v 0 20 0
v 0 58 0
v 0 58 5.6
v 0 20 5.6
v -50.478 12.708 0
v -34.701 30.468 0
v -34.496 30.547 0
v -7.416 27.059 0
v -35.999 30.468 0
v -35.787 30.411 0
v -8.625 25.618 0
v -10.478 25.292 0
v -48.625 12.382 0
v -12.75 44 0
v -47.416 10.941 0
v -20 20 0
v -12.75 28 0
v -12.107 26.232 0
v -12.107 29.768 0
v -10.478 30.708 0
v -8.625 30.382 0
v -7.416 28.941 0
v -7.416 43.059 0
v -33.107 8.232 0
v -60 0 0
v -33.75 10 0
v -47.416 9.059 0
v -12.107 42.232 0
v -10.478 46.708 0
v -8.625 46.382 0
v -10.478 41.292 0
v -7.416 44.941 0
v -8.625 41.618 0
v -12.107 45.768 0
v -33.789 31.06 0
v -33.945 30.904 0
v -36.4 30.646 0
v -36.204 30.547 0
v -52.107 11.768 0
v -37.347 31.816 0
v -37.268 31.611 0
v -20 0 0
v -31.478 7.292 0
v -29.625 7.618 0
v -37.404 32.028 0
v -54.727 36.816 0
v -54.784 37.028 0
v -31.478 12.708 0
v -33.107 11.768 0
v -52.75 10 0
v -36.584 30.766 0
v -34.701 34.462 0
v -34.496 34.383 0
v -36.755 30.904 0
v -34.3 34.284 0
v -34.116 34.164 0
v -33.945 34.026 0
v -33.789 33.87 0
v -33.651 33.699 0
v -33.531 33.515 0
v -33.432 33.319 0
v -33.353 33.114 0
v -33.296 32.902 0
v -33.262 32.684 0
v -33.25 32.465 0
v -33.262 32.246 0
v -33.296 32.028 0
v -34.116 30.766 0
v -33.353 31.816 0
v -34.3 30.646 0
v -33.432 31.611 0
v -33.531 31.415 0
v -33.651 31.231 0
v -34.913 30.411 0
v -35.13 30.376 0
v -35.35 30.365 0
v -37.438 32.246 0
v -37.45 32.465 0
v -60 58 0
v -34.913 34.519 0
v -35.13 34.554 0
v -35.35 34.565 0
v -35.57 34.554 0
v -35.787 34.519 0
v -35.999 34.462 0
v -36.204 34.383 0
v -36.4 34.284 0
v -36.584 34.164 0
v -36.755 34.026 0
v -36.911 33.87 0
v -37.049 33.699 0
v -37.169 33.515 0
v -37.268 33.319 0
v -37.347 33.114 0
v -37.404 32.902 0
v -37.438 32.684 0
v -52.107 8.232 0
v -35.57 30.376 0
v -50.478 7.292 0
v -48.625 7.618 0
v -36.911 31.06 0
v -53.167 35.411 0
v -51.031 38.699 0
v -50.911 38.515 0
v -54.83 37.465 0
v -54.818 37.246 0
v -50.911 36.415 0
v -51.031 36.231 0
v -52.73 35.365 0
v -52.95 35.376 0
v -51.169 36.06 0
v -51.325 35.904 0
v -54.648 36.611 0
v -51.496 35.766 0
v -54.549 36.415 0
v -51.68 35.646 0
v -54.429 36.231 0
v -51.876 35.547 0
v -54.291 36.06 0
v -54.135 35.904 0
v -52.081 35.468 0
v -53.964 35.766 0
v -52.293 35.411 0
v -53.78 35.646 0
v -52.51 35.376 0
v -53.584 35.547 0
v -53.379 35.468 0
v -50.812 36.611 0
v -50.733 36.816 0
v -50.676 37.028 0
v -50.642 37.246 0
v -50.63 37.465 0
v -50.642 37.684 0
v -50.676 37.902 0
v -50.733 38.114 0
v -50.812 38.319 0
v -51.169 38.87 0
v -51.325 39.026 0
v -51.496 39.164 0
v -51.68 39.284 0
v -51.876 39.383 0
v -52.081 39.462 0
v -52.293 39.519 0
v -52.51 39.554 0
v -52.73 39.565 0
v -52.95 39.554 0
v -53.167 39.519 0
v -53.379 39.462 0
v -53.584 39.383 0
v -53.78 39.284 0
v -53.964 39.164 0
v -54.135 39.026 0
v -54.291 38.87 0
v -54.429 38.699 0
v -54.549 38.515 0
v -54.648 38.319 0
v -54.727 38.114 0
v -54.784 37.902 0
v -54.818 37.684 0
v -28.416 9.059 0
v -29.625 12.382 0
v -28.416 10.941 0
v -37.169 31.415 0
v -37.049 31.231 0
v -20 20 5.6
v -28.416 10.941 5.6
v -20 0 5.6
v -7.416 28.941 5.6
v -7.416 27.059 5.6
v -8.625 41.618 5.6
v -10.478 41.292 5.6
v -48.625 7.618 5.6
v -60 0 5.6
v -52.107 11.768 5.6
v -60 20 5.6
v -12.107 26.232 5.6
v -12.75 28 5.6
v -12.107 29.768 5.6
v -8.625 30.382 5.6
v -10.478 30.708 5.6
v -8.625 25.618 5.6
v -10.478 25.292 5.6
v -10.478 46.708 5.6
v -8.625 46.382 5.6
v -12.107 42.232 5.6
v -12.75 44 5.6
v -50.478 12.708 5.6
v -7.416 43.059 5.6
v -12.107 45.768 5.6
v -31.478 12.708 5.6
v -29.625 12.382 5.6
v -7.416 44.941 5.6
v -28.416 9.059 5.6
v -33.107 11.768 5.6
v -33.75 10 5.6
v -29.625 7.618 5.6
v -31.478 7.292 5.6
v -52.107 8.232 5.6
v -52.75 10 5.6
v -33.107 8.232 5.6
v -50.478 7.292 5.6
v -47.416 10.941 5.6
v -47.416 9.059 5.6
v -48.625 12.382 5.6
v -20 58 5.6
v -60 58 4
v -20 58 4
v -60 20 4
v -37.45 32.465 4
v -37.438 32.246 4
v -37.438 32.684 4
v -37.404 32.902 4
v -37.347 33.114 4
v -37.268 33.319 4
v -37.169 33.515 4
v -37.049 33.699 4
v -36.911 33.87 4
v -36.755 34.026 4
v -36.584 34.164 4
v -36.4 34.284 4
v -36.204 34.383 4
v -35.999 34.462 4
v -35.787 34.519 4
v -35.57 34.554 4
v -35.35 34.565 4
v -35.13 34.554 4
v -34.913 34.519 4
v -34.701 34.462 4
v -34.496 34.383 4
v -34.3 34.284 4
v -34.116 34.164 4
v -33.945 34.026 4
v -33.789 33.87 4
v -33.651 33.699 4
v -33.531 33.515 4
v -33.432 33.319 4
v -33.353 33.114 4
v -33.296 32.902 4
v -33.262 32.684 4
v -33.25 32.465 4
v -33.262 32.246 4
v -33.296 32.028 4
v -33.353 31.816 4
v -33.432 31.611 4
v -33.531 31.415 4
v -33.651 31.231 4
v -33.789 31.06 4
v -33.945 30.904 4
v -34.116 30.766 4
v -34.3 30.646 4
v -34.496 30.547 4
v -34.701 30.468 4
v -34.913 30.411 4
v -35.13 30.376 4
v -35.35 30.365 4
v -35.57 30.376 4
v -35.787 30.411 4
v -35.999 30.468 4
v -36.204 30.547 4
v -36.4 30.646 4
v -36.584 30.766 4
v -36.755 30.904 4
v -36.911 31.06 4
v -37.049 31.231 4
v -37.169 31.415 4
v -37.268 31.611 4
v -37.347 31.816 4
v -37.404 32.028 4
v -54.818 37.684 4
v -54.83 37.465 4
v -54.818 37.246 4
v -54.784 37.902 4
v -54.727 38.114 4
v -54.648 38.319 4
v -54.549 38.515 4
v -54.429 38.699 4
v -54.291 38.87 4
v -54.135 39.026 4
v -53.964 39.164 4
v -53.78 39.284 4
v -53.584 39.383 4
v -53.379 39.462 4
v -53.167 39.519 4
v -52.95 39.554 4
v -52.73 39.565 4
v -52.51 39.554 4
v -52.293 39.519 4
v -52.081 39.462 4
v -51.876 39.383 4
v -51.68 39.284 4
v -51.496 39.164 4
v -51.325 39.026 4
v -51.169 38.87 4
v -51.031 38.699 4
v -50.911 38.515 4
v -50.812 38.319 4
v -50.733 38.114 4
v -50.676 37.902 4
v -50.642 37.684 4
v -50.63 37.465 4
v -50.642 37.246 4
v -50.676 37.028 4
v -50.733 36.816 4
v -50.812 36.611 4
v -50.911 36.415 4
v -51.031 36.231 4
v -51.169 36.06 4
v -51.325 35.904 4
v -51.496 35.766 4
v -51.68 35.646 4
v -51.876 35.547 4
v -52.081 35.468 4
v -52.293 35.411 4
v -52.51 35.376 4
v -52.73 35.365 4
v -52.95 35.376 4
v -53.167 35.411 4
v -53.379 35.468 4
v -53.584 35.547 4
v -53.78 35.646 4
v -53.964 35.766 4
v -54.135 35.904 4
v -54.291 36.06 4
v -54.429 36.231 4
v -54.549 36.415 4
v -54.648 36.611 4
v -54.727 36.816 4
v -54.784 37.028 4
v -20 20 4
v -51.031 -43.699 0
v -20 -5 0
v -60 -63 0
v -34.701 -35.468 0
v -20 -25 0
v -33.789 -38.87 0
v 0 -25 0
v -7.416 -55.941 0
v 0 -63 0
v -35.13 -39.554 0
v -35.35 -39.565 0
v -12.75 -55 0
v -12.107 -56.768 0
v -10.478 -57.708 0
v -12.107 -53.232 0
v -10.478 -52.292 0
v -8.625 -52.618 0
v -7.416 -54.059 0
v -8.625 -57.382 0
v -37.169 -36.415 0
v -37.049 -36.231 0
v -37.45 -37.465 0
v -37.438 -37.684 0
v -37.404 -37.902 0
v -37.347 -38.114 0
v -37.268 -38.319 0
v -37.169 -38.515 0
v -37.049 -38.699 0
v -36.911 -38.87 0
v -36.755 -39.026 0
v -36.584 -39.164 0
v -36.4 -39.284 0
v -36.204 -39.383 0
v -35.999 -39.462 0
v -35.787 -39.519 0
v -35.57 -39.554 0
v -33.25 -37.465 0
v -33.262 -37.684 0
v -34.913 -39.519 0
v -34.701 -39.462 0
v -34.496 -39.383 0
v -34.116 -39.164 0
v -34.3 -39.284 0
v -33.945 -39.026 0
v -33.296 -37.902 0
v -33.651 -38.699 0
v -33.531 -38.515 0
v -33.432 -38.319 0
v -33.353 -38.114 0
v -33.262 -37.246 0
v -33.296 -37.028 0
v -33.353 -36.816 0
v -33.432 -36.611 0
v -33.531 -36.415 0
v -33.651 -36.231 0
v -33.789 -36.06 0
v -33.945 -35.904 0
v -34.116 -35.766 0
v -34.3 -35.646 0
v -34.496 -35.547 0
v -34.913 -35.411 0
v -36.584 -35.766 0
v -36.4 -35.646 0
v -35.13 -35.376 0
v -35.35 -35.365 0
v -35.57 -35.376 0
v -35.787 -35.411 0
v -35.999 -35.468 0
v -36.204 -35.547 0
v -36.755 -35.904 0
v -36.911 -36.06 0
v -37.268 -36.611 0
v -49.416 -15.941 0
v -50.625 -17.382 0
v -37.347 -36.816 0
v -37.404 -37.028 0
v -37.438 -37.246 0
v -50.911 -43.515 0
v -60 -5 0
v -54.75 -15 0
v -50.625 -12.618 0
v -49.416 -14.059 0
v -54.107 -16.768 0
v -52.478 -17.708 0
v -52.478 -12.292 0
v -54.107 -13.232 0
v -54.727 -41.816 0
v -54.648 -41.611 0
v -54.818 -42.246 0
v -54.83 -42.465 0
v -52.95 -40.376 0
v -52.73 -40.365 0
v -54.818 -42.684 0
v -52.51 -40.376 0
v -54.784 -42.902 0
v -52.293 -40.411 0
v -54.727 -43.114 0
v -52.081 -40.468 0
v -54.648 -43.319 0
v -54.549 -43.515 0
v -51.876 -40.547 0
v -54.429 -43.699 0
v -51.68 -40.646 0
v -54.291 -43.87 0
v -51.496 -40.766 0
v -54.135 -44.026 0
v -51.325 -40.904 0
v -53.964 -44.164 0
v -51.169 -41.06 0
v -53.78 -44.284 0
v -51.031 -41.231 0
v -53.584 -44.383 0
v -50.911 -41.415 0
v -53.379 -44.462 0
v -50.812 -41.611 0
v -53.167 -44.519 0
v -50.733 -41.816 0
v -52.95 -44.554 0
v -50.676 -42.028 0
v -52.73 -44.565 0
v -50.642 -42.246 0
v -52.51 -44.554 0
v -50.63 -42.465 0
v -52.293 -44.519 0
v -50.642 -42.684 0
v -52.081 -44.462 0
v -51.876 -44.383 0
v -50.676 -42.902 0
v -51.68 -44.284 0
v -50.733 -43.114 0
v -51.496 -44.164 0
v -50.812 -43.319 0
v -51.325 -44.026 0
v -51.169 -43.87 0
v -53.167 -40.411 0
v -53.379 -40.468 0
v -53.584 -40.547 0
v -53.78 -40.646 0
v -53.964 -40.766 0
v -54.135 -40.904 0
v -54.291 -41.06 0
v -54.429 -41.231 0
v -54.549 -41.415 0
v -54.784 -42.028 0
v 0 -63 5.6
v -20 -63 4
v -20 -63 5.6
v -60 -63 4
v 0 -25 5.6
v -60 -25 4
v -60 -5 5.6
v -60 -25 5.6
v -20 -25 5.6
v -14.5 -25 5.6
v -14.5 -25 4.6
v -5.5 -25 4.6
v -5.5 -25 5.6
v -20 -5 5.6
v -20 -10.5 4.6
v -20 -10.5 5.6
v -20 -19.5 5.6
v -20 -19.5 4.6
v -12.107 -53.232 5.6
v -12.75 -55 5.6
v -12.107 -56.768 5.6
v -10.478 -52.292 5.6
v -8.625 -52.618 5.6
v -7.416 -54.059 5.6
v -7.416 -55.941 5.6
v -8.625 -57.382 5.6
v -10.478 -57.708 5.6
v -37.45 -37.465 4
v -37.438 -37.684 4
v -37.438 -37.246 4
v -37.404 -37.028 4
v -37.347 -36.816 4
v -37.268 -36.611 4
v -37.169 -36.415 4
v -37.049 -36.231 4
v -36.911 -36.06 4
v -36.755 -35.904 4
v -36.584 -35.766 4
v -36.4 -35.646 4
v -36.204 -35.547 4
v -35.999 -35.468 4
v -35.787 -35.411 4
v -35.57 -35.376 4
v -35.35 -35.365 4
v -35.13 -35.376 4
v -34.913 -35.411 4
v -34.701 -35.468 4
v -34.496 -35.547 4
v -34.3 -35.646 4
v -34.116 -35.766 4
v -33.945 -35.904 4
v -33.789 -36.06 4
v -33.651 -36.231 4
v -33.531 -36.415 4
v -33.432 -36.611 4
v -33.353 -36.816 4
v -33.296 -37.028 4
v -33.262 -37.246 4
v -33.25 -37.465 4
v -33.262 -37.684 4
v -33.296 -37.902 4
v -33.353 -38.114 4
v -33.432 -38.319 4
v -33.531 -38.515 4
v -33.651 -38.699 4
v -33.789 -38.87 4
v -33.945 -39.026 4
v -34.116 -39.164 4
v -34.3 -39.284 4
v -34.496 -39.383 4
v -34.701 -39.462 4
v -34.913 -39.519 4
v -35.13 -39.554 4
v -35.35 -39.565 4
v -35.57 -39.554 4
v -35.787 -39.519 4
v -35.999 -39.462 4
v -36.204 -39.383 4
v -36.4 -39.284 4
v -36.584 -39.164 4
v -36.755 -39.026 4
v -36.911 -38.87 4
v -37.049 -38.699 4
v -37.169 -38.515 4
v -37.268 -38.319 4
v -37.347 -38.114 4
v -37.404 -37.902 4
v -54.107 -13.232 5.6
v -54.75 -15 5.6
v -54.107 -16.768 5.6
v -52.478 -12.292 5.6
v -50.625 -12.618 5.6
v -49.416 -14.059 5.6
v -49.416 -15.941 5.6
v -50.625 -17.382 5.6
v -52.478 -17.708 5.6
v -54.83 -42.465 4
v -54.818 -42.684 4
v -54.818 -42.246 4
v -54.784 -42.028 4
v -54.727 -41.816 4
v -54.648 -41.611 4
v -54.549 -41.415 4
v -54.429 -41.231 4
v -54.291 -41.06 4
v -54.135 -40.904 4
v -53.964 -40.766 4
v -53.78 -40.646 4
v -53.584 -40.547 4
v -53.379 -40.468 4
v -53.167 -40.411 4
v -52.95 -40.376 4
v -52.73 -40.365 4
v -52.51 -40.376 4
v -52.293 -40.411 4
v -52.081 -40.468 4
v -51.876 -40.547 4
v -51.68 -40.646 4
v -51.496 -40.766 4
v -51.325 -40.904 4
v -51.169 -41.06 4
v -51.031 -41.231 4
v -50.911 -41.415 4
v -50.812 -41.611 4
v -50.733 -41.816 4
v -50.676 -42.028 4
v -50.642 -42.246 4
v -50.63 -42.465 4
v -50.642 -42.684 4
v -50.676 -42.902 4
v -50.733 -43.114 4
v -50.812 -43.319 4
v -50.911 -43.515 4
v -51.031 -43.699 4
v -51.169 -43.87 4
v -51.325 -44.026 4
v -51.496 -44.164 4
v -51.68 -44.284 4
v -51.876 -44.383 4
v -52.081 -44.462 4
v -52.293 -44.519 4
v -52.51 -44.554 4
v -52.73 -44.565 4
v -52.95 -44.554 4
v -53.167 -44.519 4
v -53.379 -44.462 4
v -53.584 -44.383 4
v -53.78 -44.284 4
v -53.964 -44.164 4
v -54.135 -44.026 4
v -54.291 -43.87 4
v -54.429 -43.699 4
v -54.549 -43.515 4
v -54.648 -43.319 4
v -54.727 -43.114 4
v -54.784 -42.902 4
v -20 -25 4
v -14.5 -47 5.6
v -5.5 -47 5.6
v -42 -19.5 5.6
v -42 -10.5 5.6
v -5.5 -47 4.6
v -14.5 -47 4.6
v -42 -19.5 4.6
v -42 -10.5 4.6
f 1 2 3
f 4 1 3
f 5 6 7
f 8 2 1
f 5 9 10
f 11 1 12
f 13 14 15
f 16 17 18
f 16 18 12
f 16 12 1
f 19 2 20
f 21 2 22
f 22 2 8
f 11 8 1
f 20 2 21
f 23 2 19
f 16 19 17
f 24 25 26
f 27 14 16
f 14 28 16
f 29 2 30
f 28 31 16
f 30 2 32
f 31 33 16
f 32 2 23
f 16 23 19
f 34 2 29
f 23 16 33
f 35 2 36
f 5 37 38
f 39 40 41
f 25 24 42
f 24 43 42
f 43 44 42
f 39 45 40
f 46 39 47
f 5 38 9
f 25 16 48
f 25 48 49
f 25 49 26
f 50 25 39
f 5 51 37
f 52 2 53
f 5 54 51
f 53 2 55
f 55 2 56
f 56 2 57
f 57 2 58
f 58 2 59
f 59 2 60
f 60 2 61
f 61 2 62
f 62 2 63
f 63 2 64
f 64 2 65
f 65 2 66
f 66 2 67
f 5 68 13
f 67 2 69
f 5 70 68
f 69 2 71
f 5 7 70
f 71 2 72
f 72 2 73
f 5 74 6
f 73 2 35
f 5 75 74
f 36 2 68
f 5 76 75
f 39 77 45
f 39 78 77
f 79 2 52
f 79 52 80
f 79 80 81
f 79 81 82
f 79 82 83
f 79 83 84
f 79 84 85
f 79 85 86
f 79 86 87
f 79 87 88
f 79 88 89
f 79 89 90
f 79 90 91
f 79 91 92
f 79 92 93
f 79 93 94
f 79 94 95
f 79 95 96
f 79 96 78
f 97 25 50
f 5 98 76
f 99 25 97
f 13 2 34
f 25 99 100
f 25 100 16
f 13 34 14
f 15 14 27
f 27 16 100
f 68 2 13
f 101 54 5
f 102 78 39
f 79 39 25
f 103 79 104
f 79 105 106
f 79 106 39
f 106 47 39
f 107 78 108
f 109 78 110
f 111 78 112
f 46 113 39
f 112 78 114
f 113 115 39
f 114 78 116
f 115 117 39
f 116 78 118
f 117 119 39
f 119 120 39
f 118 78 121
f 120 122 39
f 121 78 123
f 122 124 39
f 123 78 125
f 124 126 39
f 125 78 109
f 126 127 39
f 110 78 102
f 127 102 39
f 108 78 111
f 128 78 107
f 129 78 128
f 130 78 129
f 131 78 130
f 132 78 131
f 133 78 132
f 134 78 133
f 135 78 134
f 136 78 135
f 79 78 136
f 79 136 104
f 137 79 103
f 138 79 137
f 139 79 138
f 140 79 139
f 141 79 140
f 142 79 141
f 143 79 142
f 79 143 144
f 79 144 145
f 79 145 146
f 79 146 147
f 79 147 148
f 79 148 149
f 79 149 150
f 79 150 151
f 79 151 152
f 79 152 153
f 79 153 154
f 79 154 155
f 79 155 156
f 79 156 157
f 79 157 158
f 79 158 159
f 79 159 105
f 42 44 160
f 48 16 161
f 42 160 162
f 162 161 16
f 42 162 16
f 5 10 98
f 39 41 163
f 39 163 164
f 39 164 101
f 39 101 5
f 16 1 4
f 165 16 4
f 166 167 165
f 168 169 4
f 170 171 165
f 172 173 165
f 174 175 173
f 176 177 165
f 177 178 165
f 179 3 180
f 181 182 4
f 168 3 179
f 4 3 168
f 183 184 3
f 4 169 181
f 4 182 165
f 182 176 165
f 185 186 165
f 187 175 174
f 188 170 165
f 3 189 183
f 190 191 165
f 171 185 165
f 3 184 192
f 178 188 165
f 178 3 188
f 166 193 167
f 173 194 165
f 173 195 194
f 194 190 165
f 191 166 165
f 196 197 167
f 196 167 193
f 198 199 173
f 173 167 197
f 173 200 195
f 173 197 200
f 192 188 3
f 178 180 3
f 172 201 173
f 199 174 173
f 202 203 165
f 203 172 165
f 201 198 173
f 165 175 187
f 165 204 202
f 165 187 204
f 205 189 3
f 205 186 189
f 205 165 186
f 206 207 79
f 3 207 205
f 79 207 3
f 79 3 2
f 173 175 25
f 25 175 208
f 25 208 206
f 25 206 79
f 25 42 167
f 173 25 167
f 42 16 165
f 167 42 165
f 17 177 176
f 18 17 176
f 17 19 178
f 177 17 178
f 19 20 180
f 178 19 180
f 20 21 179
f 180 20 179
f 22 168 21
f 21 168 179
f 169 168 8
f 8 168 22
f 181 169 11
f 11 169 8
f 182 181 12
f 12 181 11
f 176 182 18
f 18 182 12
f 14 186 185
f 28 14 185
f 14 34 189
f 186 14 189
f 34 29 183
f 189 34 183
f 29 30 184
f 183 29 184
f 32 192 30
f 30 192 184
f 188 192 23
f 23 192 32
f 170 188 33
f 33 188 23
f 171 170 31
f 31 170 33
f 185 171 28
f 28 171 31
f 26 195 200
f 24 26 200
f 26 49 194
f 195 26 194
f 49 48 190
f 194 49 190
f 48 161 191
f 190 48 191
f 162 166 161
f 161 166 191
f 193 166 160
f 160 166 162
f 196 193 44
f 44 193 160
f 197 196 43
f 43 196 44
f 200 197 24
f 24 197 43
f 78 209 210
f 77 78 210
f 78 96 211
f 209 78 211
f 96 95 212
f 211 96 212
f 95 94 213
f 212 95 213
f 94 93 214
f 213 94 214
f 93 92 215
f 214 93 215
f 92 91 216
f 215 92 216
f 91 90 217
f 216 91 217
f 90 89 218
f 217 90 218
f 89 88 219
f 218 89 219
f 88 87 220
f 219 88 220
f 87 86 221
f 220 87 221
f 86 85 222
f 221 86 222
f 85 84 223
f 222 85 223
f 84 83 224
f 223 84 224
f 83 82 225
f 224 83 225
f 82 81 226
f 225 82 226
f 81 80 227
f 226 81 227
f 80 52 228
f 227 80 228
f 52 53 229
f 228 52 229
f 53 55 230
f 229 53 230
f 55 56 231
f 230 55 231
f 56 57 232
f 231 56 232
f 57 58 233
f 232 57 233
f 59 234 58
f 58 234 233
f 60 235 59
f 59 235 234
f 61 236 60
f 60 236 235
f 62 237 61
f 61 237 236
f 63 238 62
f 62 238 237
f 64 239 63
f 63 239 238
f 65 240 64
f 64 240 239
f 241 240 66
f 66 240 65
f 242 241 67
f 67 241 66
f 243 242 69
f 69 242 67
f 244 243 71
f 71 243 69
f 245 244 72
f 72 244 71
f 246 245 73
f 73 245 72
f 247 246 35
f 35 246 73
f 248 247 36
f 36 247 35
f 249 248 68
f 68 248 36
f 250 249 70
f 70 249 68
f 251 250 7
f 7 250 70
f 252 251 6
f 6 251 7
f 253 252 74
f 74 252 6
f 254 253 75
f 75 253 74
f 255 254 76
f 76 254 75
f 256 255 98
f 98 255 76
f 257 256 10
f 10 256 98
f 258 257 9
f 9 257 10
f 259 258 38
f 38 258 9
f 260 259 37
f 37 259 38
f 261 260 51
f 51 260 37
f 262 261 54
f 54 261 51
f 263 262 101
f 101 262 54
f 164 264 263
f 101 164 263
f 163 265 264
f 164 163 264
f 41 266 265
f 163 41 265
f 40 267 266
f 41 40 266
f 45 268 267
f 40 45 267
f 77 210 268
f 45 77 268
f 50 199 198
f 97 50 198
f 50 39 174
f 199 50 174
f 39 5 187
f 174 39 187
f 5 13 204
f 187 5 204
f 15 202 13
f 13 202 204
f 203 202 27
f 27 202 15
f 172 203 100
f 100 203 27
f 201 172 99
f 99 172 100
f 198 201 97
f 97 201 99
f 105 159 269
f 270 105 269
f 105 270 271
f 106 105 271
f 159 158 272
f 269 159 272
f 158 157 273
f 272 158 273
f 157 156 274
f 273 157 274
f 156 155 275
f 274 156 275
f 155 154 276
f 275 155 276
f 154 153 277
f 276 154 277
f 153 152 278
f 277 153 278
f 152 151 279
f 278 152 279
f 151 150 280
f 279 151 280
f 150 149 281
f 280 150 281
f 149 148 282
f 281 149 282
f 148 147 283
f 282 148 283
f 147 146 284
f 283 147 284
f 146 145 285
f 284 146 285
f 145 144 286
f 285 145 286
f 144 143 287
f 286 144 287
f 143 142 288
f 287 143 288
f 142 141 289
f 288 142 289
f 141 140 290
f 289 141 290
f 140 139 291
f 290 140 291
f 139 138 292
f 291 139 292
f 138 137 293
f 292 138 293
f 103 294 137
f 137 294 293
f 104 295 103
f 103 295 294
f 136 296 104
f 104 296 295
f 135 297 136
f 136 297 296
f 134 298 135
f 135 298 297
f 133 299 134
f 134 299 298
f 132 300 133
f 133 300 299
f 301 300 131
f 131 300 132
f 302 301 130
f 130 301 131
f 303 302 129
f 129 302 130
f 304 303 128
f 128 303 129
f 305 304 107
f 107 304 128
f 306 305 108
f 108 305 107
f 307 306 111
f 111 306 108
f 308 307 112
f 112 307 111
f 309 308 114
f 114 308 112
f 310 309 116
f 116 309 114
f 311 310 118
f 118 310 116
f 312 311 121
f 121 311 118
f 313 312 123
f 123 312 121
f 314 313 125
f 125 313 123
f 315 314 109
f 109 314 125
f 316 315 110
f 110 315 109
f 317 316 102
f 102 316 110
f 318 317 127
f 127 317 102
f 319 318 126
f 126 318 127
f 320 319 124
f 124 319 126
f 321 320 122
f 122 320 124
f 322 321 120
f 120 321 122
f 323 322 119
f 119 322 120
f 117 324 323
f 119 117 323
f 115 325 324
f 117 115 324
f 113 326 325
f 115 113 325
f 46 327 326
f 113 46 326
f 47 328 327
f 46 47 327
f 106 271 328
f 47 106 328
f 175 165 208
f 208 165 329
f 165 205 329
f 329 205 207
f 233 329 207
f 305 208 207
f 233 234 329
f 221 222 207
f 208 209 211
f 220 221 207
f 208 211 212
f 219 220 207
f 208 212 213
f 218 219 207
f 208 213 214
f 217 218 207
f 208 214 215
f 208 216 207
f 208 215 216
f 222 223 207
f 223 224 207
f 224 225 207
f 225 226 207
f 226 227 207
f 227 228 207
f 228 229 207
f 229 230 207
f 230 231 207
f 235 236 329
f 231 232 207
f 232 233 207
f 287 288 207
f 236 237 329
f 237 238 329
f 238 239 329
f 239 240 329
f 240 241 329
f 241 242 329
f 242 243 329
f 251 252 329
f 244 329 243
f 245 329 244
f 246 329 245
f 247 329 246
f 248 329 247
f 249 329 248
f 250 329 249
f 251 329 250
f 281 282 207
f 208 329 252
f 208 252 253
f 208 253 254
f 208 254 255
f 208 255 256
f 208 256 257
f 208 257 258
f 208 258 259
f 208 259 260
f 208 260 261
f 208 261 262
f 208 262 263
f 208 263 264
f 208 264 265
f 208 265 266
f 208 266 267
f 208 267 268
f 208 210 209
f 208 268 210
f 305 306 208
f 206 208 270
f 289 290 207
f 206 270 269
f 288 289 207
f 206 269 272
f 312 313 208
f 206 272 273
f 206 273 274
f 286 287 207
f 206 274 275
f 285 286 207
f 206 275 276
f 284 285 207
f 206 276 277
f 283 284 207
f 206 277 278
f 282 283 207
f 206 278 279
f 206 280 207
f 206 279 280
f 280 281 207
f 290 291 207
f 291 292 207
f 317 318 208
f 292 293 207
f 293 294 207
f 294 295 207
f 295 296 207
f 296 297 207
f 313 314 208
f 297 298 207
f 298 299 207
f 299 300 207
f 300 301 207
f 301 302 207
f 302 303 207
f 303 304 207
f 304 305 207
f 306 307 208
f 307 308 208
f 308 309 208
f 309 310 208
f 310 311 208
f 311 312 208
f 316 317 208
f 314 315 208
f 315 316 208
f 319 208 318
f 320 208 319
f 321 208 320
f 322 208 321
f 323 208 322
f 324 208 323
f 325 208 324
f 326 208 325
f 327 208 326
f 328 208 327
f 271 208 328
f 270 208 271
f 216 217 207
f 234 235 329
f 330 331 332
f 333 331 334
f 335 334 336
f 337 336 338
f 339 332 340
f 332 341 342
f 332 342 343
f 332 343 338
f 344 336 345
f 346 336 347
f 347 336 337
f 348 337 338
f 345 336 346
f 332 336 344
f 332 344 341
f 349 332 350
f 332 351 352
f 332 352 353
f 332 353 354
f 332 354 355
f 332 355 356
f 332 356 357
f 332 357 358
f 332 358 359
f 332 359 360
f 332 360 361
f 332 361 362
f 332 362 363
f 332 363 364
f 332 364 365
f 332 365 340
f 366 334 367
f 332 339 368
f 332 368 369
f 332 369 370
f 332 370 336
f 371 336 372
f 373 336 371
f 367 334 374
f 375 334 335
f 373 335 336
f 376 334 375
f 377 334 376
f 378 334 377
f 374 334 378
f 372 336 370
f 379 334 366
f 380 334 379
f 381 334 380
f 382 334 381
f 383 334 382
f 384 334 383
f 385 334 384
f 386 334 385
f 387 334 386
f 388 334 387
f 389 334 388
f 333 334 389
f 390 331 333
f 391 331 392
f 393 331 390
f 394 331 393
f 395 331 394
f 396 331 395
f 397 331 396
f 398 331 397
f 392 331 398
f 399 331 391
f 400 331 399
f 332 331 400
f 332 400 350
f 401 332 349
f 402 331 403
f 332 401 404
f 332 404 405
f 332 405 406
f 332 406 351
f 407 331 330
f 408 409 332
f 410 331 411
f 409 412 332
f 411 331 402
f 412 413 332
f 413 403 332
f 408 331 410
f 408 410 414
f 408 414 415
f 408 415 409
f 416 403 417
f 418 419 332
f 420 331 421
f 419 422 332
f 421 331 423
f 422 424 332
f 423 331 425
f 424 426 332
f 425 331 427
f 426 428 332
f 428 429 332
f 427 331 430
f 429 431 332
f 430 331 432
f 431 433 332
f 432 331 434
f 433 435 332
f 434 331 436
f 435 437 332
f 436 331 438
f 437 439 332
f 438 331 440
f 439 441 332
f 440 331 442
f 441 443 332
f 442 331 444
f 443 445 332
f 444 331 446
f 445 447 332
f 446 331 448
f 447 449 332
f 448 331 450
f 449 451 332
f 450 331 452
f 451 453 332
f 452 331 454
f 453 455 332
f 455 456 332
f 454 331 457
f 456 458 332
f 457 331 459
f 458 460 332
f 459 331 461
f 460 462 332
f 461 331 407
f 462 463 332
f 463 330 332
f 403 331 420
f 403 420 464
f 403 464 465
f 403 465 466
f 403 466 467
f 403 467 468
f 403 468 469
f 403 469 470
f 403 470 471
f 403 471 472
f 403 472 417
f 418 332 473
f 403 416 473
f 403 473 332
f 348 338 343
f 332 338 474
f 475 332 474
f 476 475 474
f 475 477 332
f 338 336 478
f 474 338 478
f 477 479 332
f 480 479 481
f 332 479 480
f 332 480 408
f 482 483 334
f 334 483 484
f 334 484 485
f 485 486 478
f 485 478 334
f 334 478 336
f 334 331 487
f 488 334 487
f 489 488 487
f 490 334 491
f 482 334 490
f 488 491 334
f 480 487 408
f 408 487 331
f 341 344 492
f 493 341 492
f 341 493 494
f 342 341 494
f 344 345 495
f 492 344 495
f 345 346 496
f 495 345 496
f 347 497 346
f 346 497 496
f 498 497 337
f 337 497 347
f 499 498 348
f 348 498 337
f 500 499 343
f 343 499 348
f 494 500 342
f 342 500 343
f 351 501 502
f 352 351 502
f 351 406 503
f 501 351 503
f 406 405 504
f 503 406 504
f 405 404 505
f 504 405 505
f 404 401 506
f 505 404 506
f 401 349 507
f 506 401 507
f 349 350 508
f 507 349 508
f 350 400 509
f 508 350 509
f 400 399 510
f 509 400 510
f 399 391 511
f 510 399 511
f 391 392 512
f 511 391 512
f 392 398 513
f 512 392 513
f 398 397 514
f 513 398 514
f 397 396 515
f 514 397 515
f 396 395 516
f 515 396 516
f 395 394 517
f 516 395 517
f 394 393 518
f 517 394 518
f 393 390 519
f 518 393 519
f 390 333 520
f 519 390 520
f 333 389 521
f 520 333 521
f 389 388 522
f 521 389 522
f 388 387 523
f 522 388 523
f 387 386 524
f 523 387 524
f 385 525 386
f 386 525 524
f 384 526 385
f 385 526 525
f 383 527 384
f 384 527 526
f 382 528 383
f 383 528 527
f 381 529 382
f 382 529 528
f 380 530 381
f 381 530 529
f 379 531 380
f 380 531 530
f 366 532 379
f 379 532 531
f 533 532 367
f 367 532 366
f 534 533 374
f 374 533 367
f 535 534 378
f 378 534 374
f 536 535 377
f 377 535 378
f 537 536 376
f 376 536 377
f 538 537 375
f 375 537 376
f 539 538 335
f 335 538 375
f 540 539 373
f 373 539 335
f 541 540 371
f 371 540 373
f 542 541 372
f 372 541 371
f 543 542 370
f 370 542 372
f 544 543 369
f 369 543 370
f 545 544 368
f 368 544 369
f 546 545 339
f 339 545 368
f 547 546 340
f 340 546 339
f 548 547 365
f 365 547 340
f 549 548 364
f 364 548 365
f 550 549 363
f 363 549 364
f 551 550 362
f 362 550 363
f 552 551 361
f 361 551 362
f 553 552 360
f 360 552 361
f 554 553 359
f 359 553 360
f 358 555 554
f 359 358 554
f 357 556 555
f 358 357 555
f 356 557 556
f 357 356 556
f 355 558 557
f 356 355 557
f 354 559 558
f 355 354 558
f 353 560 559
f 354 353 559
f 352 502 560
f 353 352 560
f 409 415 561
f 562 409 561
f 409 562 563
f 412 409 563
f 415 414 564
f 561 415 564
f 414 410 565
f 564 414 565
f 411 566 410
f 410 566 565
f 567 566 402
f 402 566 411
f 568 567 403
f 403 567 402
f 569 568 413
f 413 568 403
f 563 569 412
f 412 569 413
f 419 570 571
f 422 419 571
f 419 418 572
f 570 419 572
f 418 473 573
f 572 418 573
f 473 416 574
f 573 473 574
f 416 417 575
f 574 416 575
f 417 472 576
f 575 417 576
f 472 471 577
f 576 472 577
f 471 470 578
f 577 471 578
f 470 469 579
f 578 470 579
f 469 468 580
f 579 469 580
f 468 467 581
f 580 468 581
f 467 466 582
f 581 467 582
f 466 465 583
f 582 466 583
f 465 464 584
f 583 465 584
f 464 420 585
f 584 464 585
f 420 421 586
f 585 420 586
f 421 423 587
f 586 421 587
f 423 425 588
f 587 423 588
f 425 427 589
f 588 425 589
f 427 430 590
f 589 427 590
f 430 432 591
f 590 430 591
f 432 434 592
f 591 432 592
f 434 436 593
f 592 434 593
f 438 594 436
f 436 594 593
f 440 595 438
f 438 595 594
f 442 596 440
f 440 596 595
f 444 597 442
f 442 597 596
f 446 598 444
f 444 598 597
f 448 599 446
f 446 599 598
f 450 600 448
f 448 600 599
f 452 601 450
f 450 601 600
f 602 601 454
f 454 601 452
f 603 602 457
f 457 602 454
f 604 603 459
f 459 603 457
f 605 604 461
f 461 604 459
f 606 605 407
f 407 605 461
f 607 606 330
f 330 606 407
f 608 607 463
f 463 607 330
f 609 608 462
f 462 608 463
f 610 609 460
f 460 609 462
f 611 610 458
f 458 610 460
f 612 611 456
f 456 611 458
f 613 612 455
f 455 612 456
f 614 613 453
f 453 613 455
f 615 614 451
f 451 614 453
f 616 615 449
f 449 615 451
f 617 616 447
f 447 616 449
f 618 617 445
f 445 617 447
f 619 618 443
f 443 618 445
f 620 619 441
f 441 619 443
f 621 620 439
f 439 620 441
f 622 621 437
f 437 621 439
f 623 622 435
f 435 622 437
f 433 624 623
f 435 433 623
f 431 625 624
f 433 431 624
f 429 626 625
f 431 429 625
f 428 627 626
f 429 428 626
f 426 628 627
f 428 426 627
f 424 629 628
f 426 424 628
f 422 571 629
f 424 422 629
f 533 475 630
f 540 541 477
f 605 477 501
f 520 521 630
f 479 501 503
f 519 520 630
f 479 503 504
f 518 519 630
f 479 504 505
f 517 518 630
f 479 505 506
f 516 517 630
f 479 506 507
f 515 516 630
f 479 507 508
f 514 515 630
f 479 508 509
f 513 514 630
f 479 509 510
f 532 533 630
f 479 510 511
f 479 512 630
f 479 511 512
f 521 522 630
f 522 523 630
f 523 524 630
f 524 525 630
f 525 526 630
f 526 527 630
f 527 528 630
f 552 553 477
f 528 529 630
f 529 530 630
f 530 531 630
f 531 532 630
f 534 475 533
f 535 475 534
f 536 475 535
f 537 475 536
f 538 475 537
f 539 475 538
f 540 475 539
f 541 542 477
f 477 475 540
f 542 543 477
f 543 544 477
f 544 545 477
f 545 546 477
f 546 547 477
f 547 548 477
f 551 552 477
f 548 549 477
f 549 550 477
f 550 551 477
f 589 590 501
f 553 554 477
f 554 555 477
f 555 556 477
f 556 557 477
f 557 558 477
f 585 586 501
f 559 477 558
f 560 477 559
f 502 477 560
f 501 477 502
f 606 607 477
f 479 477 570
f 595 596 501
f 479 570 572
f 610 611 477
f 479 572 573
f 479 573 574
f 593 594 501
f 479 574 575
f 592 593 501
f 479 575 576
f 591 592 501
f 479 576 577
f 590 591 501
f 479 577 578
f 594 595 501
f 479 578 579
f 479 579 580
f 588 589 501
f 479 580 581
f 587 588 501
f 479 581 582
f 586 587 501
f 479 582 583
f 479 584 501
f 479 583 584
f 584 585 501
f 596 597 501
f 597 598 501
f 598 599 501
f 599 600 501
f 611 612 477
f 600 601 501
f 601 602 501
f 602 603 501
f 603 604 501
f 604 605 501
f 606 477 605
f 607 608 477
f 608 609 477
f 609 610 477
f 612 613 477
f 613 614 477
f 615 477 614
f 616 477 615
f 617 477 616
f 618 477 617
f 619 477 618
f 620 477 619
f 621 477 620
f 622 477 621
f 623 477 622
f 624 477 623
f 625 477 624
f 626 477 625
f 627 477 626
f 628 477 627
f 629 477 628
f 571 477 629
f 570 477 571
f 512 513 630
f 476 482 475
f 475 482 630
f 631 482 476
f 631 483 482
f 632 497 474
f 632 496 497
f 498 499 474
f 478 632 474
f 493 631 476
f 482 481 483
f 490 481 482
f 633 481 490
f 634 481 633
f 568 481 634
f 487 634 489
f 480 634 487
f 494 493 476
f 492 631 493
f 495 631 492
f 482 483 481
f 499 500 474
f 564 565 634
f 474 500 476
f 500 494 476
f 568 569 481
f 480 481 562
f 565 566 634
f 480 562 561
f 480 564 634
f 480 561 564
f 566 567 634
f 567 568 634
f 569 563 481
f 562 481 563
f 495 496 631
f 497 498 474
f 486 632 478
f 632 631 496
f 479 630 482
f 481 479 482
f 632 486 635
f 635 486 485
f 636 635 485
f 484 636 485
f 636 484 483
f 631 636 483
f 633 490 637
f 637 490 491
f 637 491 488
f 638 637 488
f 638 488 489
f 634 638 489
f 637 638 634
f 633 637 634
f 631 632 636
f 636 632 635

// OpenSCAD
// file: library.scad
//rounded cube Functions from: http://www.thingiverse.com/thing:38069


module cube_fillet(size,radius=-1,vertical,top,bottom,center=false,$fn=0){
    if (center) {
        cube_fillet_inside(size, radius, vertical, top, bottom, $fn=$fn);
    } else {
        translate([size[0]/2, size[1]/2, size[2]/2])
            cube_fillet_inside(size, radius, vertical, top, bottom, $fn=$fn);
    }
}
module fillet(radius, height=100, $fn=60) {  
    //this creates negative of fillet,
    //i.e. thing to be substracted from object
    translate([-radius, -radius, -height/2-0.01])
        difference() {
            cube([radius*2, radius*2, height+0.02]);
            cylinder(r=radius, h=height+0.02, $fn=$fn);
        }
}

module cube_negative_fillet(size,radius=-1,vertical, top,bottom,$fn=0){
    j=[1,0,1,0];

    for (i=[0:3]) {
        if (radius > -1) {
            rotate([0, 0, 90*i])
                translate([size[1-j[i]]/2, size[j[i]]/2, 0])
                    fillet(radius, size[2], $fn=$fn);
        } else {
            rotate([0, 0, 90*i])
                translate([size[1-j[i]]/2, size[j[i]]/2, 0])
                    fillet(vertical[i], size[2], $fn=$fn);

        }
        rotate([90*i, -90, 0])
            translate([size[2]/2, size[j[i]]/2, 0 ])
                fillet(top[i], size[1-j[i]], $fn=$fn);
        rotate([90*(4-i), 90, 0])
            translate([size[2]/2, size[j[i]]/2, 0])
                fillet(bottom[i], size[1-j[i]], $fn=$fn);
    }
}

module cube_fillet_inside(size,radius=-1,vertical,top,bottom,$fn=0){

    if (radius == 0) {
        cube(size, center=true);
    } else {
        difference() {
            cube(size, center=true);
            cube_negative_fillet(size, radius, vertical, top, bottom, $fn=$fn);
        }
    }
}
// file: dimensions.scad
// Dimensions
// Author: sdavi


LM8UU = [8, 15, 24];//rod diameter,outter diameter, length
LM12UU = [12, 21, 30];
LM12LUU = [12, 21, 57];
LM12UUx2 = [LM12UU[0], LM12UU[1], LM12UU[2]*2];

BEARING_624 = [4,13,5]; //inner diameter(hole), outter diameter, thickness (http://reprap.org/wiki/Ball_bearing)
BEARING_2x624 = [4, 13, 10]; // 2 624 bearings together, good size for GT2

BEARING_6300 = [10,35,11]; //inner diameter, outer diameter, thickness

vslot_wheel = [23.89,10.23];	//23.89 & 10.23
vslot_wheel_hole = 5+0.5;
vslot_wheel_eccentric = 7.2+0.5; //hole for eccentric spacer
vslot_wheel_spacer_length = 6.35;


t_nut_length = 15+1; //hole in center 1mm cleanance incase hole isnt actually center




GT2_belt_width = 6;
GT2_belt_pitch = 2;
GT2_belt_thickness = 1.38;
GT2_belt_tooth_height = 0.75;  
GT2_belt_tooth_ratio = 0.5;



GT2_pulley_geared_diameter=12.2;//measured from top of tooth to top of tooth opp side// 12.2 is for the 20 tooth pulley

//from metric (prusa i3)
m4_diameter = 4.6;
m4_nut_diameter = 7.6;
m4_nut_diameter_horizontal = 8.15;

m3_diameter = 3.6;
m3_nut_diameter = 5.3;
m3_nut_diameter_horizontal = 6.8;
m3_washer_diameter = 6.9;
//end i3 variables

m5_diameter = 5.5;

//Hex Head M3x30: Head 5.5mm flat to flat, 2.12mm thick
m3_hex_head_diameter = 5.5*2/sqrt(3) + 0.2;

M4 = m4_diameter;
M3 = m3_diameter;
M5 = m5_diameter;
m4_washer_thickness = 0.8; //flat and penny washers
m4_washer_diameter = 9.6;

nema17_holes = 31;// mm between screws
nema17_width = 42; //width
nema17_height = 48;
// file: configuration.scad
// Configuration
// Author: sdavi


include <dimensions.scad>
use <library.scad>


x_rod_distance = 45;

y_bearing = LM8UU;
x_bearing = LM8UU;
//z_bearing = LM12UUx2;
z_bearing = LM12LUU;
belt_bearing = BEARING_2x624;


end_belt_bearing_distance = 25;// distance between 2 bearings on y-ends
belt_clearance = 9.5; //space for belts
x_belt_clearance = 5; //spacing between x-axis vslot and belt

frame_screw = M5; //m5 screws for v/tslot

// calculated vars


//y bearing block
y_bearing_block_length = 2*y_bearing[2] + M3*2 + 5;
//y_bearing_block_width = y_bearing[1]+5;
y_bearing_block_width = 20; //vslot frame width

y_bearing_block_height = 6+y_bearing[1]/2;

//xy_bearing_distance = y_bearing_block_width/2+belt_clearance+belt_bearing[1]/2; //distance between center of y-bearing to center of x-belt bearing 
xy_bearing_distance = vslot_wheel[1]/2+vslot_wheel_spacer_length+belt_clearance+belt_bearing[1]/2; //distance between center of v_slot to center of x-belt bearing 




//min height for belt bearings
min_beltbearing_height = max(((belt_bearing[2]+m4_washer_thickness*2) * 2), y_bearing_block_height);
// file: lib/y_idler_ends.scad
// y_idler ends 
// Author: sdavi


//Idler Ends BoM
//16x M5x8mm bolt
//4x M4x??m Bolt + nut
//8x M4 washer
//8x F624ZZ bearing

include <../configuration.scad>
include <../dimensions.scad>

//use <y_motor_end.scad>




im_using_hidden_corner_connectors = 1; // if using hidden corner connectors
hcc=[9,22,1]; //to avoid hidden corner connectors;

//add extra lenths if using hidden corner conenctors
extra_l=max(t_nut_length+im_using_hidden_corner_connectors*(hcc[1]), t_nut_length*2); 
extra_w = max(40, im_using_hidden_corner_connectors*(hcc[1])+t_nut_length);

y_block_length = 20+extra_l;//big enough to hold 2 frame screws
y_block_width = 20+extra_w; 
y_block_height = 4;

y_block_total_height = 4+4+min_beltbearing_height;


echo("block length:", y_block_length);
echo("block width:", y_block_width);
echo("block height:", y_block_height);

echo("Total Height:", y_block_height*2+min_beltbearing_height);





//y_idler_ends_print();
//%motor_mount();
//y_motor_end_idler();

//%illustration();
//support();



module y_idler_ends_print(){
	difference(){
		//bottom
		y_motor_end_idler();
		translate([0,0,y_block_total_height-9.9])cube([y_block_width, y_block_length, 10]);
	
	}
	
	translate([0,-5,y_block_total_height])rotate([180,0,0])intersection(){
		y_motor_end_idler();
		translate([0,0,y_block_total_height-9.9])cube([y_block_width, y_block_length, 10]);
	
	}
}













//calculate positions for bearings

inner_bearing_pos = [	nema17_width/2+20+GT2_pulley_geared_diameter/2+(GT2_belt_thickness-GT2_belt_tooth_height)+belt_bearing[2]/2, 
						y_bearing_block_width/2+xy_bearing_distance,
						0];

outer_bearing_pos = [	inner_bearing_pos[0]-belt_bearing[2]-GT2_belt_thickness-6, 
							inner_bearing_pos[1]-5, 
							0 ];







module y_motor_end_idler(){
	difference(){
		cube([y_block_width, y_block_length,y_block_total_height]);

		//remove for frame corner
		translate([-0.1, -0.1, -0.1])cube([20.1, 20.1, y_block_total_height+0.2]);
		//remove frame lengths
		translate([0,-0.1,y_block_total_height/2-20/2]) cube([y_block_width+0.1, 20.2, 20]);
		translate([-0.1,-0.1,y_block_total_height/2-20/2]) cube([20.2, y_block_length+0.2, 20]);
		
		//belt area

		translate([20,20,y_block_total_height/2-min_beltbearing_height/2]) 
			cube([y_block_width-20+0.1, y_block_length-20+0.1, min_beltbearing_height]);


		bearing_holes();

		//frame screws

		if(im_using_hidden_corner_connectors==0){
			translate([10,20+t_nut_length/2,-0.1]) 
				cylinder(d=frame_screw, h=y_block_total_height+0.2);
			translate([10,20+t_nut_length+t_nut_length/2,-0.1]) 
				cylinder(d=frame_screw, h=y_block_total_height+0.2);
		
			translate([20+t_nut_length/2+3,10,-0.1]) 
				cylinder(d=frame_screw, h=y_block_total_height+0.2);
			translate([20+t_nut_length+t_nut_length/2+6,10,-0.1]) 
				cylinder(d=frame_screw, h=y_block_total_height+0.2);

		} else {
			//hidden corner connectors get in the way, avoid them
//hcc=[9,22,1]; //to avoid hidden connectors;

			//top, has hidden conenctors
			translate([10,y_block_length-t_nut_length/2,y_block_total_height/2]) 
				cylinder(d=frame_screw, h=y_block_total_height/2+0.1);
			translate([y_block_width-t_nut_length/2,10,y_block_total_height/2]) 
				cylinder(d=frame_screw, h=y_block_total_height/2+0.1);

			//make cutout for hidden connector so sits flush
			translate([20-0.1, 20/2-hcc[0]/2, y_block_total_height/2+20/2-0.1])
				cube([hcc[1]+0.1, hcc[0], hcc[2]+0.1]);
			translate([20/2-hcc[0]/2, 20-0.1, y_block_total_height/2+20/2-0.1])
				cube([hcc[0], hcc[1]+0.1, hcc[2]+0.1]);


			//bottom
			translate([10,20+t_nut_length/2,-0.1]) 
				cylinder(d=frame_screw, h=y_block_total_height/2);
			translate([10,20+t_nut_length+t_nut_length/2,-0.1]) 
				cylinder(d=frame_screw, h=y_block_total_height/2);
		
			translate([20+t_nut_length/2+3,10,-0.1]) 
				cylinder(d=frame_screw, h=y_block_total_height/2);
			translate([20+t_nut_length+t_nut_length/2+6,10,-0.1]) 
				cylinder(d=frame_screw, h=y_block_total_height/2);

			
		}



	}
}


module bearing_holes(){
	//belt bearing holes

	//bearing inner
	translate(inner_bearing_pos)  translate([0,0,-0.1])cylinder(d=belt_bearing[0]+0.2, h=y_block_total_height+0.2, $fn=60);
	//bearing outer
	translate(outer_bearing_pos) translate([0,0,-0.1])  cylinder(d=belt_bearing[0]+0.2, h=y_block_total_height+0.2, $fn=60);
	//bearing outer padding space
	translate(outer_bearing_pos) translate([0,0,y_block_height]) cylinder(d=belt_bearing[1]*1.8, h=min_beltbearing_height, $fn=30);

	
	

}

module illustration(){
		visualise_high = 0; //high (1) or low bearing (0)

//frames
			%color("grey")translate([0,0,-20]) 
				cube([20,20,70]);
			%color("grey")%translate([0,0,y_block_total_height/2-10]) cube([100, 20,20]);
			%color("grey")%translate([0,0,y_block_total_height/2-10]) cube([20,150, 20]);

//bearings
	
		%color("green")translate(inner_bearing_pos)
			translate([0,0,y_block_total_height/2-10+m4_washer_thickness]){ 
				if( visualise_high == 0){
					cylinder(d=belt_bearing[1], h=belt_bearing[2], $fn=60); //bottom
				} else {

					translate([0,0,belt_bearing[2]+m4_washer_thickness*2])
						cylinder(d=belt_bearing[1], h=belt_bearing[2], $fn=60); //top
				}
			}

		%color("green")translate(outer_bearing_pos)
			translate([0,0,y_block_total_height/2-10+m4_washer_thickness]) {
					
				if(visualise_high == 0){
					cylinder(d=belt_bearing[1], h=belt_bearing[2], $fn=60);//bottom	

				} else {
					translate([0,0,belt_bearing[2]+m4_washer_thickness*2])
						cylinder(d=belt_bearing[1], h=belt_bearing[2], $fn=60); //top				
				}

			}

//nema17
		%color("yellow") rotate([0,180,0])
			translate([	-nema17_width/2-20,
							nema17_width/2+20+50,
							-(min_beltbearing_height+y_block_height*2)-46]) 
			nema17();	
			
		%translate([nema17_width/2+20,nema17_width/2+20+50,y_block_height+m4_washer_thickness+belt_bearing[2]/2 + visualise_high*(belt_bearing[2]+m4_washer_thickness*2)])
			pulley(bottom=visualise_high);

//belts
		%color("DimGray") translate(inner_bearing_pos) 
			translate([-belt_bearing[2]/2-GT2_belt_thickness,0,y_block_height+m4_washer_thickness+belt_bearing[2]/2-GT2_belt_width/2 +visualise_high*(belt_bearing[2]+m4_washer_thickness*2)]) cube([GT2_belt_thickness, 50, GT2_belt_width]);
		

	//rod holder 
	//%color("red")translate([20,0,y_block_height*2+min_beltbearing_height+frame_spacer_height])mirror([0,0,1])y_rod_holder();

}



//modle of nema17 for illustration
module nema17(){


	union(){
		translate([-nema17_width/2, -nema17_width/2, 0])
			cube_fillet([nema17_width, nema17_width, nema17_height], vertical=[3,3,3,3]);
		translate([0,0,48]) {
			cylinder(d=22, h=2, $fn=60); //rasied center bit
			cylinder(d=5, h=22+2, $fn=60); //shaft
		}

		

	
	}
	


}


//pulley bottom = 1 or 0
module pulley(bottom = 1){
		//pulley GT2 20 tooth
		//pulley height = 16, diameter = 16, bottom=1mm, top=7+0.5;


		rotate([0,bottom*180,0])translate([0,0,-1-(16-7.5-1)/2]){
			color("orange")  cylinder(d=16, h=1, $fn=60);
			color("orange") translate([0,0,16-7.5]) cylinder(d=16, h=7.5, $fn=60);	
			color("yellow") translate([0,0,1]) cylinder(d=12.2, h=16-1-7.5, $fn=60);
		}
}
// main file
// y_idler end
// Author: sdavi

include <lib/y_idler_ends.scad>


im_using_hidden_corner_connectors = 1; // if using hidden corner connectors
mirror([1,0,0]) y_idler_ends_print();
